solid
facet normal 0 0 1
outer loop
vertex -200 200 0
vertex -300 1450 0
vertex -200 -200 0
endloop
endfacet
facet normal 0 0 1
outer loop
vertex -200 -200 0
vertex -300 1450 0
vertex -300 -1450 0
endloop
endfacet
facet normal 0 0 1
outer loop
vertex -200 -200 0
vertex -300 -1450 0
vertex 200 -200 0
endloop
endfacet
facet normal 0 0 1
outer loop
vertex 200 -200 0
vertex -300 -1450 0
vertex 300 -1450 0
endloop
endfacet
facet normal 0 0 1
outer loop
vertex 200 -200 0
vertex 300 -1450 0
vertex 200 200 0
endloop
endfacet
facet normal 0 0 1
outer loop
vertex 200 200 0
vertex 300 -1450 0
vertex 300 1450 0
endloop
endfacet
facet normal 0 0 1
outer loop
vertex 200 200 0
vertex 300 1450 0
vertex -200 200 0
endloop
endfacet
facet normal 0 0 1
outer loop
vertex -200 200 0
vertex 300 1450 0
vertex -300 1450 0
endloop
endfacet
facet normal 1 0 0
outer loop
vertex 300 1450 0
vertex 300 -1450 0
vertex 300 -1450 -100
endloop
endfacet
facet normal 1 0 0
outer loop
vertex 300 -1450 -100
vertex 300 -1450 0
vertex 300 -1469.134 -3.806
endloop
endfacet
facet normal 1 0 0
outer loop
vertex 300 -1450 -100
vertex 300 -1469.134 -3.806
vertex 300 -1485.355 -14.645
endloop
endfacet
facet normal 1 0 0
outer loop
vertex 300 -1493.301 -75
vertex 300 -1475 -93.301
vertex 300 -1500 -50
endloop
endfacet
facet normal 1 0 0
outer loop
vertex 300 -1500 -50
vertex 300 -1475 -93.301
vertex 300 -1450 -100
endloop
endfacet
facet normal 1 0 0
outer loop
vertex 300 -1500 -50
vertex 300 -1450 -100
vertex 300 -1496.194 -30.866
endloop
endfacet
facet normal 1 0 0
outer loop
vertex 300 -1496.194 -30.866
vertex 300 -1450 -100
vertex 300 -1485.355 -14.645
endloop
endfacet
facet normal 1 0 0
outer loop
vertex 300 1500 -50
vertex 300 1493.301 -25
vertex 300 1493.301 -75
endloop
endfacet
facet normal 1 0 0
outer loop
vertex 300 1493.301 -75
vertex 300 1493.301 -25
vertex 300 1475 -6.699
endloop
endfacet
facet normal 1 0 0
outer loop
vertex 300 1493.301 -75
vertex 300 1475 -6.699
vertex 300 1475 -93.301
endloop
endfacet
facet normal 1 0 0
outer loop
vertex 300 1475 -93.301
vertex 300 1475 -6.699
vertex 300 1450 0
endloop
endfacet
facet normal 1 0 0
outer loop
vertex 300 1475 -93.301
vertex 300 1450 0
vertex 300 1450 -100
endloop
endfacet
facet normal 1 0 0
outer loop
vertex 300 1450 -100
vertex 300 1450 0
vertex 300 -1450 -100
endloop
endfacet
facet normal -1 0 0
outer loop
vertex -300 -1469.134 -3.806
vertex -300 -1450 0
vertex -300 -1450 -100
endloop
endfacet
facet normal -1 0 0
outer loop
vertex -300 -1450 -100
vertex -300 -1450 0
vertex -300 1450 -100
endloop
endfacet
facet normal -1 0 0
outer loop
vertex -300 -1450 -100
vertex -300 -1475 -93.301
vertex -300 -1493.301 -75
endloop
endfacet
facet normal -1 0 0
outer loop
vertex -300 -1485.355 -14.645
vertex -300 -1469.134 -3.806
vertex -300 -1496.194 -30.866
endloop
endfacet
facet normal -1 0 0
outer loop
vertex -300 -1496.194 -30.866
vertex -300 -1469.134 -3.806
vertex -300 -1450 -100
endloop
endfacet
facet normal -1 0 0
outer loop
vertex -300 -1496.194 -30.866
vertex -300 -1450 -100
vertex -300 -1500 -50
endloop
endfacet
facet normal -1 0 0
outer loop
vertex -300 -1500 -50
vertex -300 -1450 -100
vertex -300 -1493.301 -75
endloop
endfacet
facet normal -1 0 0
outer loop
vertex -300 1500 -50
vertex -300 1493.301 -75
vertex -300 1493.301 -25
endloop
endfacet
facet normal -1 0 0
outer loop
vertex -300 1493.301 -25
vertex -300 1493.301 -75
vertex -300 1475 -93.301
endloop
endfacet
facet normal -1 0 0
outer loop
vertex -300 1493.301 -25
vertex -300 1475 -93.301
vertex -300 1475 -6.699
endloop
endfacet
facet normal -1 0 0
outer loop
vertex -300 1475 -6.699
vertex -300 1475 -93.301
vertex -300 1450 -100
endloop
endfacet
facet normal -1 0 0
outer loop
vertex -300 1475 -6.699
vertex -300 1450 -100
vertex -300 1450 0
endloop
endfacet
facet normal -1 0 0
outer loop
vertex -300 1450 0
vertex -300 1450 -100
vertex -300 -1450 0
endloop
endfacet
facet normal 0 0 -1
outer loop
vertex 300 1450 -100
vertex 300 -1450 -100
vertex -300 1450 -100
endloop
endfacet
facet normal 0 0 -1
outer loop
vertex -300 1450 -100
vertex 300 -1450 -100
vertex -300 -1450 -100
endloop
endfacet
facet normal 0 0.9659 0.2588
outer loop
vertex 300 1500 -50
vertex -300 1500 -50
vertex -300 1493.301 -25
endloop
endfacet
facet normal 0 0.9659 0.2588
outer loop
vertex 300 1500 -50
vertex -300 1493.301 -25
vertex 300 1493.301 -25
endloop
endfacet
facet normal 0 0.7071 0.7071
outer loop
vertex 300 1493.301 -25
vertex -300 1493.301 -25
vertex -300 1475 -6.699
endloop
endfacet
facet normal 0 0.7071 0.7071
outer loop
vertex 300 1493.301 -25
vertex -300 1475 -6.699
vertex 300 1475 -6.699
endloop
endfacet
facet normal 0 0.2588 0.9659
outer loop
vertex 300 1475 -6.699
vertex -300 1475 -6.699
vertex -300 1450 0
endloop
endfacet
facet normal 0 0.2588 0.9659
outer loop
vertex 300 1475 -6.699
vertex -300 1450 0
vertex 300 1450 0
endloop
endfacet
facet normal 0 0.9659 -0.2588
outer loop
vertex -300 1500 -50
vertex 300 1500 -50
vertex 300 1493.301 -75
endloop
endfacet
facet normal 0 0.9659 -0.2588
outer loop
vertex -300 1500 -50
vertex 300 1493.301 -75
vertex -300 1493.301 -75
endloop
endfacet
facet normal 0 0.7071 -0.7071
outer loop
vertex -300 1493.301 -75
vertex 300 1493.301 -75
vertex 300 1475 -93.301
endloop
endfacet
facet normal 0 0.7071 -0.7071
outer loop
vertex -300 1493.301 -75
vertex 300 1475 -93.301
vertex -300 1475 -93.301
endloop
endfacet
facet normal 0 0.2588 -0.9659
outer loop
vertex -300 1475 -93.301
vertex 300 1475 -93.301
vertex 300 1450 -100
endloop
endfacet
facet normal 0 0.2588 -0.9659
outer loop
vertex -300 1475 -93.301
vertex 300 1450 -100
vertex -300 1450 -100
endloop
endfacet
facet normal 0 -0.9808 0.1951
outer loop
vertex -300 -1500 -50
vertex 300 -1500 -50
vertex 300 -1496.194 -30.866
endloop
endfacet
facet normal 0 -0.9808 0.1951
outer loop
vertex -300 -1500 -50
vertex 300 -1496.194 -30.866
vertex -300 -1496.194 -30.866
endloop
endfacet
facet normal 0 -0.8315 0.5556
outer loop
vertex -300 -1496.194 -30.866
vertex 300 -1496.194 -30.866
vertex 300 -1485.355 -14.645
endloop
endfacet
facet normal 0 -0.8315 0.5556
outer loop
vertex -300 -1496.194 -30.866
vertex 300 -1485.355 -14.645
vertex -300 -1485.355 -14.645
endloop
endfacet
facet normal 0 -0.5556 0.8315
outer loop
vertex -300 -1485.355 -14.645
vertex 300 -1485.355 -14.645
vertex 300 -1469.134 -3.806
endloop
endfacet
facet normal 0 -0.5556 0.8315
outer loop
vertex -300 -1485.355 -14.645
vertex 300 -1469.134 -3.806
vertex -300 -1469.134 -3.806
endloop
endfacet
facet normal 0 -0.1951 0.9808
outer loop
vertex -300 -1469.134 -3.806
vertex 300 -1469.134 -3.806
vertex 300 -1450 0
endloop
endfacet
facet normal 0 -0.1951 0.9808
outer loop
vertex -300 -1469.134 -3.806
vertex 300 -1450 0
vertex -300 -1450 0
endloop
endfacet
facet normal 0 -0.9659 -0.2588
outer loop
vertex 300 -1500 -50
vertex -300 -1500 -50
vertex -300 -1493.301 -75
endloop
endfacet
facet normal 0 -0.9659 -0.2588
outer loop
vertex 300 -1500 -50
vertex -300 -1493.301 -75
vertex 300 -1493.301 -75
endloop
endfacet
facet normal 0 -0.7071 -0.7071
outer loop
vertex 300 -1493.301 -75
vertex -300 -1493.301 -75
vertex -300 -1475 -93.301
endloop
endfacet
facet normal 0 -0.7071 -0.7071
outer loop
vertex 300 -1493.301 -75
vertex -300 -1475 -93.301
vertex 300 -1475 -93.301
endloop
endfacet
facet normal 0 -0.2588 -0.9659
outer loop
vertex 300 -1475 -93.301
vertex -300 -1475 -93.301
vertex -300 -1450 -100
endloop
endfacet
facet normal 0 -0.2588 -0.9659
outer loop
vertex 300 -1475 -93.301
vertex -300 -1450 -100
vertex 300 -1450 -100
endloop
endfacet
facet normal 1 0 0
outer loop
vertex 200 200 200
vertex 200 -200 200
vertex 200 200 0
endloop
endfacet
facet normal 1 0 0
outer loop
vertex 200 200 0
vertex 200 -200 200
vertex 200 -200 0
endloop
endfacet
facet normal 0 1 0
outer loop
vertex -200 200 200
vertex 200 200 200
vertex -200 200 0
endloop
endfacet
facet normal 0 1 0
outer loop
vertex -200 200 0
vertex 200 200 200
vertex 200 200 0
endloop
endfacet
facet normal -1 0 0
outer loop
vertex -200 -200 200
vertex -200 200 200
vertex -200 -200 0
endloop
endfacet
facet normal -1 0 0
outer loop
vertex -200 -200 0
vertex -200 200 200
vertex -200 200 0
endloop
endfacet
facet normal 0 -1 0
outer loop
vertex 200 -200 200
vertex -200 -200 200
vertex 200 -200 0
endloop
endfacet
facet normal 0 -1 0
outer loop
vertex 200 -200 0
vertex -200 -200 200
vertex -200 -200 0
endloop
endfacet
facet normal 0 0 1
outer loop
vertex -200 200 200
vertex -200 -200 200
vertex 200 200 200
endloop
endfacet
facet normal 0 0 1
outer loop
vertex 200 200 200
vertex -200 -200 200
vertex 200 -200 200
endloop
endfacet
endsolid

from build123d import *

# Parameters (mm, degrees)
SKETCH1_W           = 600
SKETCH1_H           = 3000
BOSS_EXTRUDE2_DEPTH = 100
FILLET2_R           = 50
SKETCH2_W           = 400
SKETCH2_H           = 400
BOSS_EXTRUDE3_DEPTH = 200


with BuildPart() as part:
    # Sketch1 → Boss-Extrude2 (new body)
    with BuildSketch(Plane.XY):
        Rectangle(SKETCH1_W, SKETCH1_H)
    extrude(amount=-BOSS_EXTRUDE2_DEPTH)

    # Fillet2
    fillet2_edges = [part.edges().sort_by_distance(p)[0] for p in [
        (0, 1500, -100),
        (0, 1500, 0),
        (0, -1500, -100),
        (0, -1500, 0),
    ]]
    fillet(fillet2_edges, radius=FILLET2_R - 0.0001)  # a hair under: the kernel refuses the full size

    # Sketch2 → Boss-Extrude3 (add)
    with BuildSketch(Plane.XY):
        Rectangle(SKETCH2_W, SKETCH2_H)
    extrude(amount=BOSS_EXTRUDE3_DEPTH)


solid = part.part
